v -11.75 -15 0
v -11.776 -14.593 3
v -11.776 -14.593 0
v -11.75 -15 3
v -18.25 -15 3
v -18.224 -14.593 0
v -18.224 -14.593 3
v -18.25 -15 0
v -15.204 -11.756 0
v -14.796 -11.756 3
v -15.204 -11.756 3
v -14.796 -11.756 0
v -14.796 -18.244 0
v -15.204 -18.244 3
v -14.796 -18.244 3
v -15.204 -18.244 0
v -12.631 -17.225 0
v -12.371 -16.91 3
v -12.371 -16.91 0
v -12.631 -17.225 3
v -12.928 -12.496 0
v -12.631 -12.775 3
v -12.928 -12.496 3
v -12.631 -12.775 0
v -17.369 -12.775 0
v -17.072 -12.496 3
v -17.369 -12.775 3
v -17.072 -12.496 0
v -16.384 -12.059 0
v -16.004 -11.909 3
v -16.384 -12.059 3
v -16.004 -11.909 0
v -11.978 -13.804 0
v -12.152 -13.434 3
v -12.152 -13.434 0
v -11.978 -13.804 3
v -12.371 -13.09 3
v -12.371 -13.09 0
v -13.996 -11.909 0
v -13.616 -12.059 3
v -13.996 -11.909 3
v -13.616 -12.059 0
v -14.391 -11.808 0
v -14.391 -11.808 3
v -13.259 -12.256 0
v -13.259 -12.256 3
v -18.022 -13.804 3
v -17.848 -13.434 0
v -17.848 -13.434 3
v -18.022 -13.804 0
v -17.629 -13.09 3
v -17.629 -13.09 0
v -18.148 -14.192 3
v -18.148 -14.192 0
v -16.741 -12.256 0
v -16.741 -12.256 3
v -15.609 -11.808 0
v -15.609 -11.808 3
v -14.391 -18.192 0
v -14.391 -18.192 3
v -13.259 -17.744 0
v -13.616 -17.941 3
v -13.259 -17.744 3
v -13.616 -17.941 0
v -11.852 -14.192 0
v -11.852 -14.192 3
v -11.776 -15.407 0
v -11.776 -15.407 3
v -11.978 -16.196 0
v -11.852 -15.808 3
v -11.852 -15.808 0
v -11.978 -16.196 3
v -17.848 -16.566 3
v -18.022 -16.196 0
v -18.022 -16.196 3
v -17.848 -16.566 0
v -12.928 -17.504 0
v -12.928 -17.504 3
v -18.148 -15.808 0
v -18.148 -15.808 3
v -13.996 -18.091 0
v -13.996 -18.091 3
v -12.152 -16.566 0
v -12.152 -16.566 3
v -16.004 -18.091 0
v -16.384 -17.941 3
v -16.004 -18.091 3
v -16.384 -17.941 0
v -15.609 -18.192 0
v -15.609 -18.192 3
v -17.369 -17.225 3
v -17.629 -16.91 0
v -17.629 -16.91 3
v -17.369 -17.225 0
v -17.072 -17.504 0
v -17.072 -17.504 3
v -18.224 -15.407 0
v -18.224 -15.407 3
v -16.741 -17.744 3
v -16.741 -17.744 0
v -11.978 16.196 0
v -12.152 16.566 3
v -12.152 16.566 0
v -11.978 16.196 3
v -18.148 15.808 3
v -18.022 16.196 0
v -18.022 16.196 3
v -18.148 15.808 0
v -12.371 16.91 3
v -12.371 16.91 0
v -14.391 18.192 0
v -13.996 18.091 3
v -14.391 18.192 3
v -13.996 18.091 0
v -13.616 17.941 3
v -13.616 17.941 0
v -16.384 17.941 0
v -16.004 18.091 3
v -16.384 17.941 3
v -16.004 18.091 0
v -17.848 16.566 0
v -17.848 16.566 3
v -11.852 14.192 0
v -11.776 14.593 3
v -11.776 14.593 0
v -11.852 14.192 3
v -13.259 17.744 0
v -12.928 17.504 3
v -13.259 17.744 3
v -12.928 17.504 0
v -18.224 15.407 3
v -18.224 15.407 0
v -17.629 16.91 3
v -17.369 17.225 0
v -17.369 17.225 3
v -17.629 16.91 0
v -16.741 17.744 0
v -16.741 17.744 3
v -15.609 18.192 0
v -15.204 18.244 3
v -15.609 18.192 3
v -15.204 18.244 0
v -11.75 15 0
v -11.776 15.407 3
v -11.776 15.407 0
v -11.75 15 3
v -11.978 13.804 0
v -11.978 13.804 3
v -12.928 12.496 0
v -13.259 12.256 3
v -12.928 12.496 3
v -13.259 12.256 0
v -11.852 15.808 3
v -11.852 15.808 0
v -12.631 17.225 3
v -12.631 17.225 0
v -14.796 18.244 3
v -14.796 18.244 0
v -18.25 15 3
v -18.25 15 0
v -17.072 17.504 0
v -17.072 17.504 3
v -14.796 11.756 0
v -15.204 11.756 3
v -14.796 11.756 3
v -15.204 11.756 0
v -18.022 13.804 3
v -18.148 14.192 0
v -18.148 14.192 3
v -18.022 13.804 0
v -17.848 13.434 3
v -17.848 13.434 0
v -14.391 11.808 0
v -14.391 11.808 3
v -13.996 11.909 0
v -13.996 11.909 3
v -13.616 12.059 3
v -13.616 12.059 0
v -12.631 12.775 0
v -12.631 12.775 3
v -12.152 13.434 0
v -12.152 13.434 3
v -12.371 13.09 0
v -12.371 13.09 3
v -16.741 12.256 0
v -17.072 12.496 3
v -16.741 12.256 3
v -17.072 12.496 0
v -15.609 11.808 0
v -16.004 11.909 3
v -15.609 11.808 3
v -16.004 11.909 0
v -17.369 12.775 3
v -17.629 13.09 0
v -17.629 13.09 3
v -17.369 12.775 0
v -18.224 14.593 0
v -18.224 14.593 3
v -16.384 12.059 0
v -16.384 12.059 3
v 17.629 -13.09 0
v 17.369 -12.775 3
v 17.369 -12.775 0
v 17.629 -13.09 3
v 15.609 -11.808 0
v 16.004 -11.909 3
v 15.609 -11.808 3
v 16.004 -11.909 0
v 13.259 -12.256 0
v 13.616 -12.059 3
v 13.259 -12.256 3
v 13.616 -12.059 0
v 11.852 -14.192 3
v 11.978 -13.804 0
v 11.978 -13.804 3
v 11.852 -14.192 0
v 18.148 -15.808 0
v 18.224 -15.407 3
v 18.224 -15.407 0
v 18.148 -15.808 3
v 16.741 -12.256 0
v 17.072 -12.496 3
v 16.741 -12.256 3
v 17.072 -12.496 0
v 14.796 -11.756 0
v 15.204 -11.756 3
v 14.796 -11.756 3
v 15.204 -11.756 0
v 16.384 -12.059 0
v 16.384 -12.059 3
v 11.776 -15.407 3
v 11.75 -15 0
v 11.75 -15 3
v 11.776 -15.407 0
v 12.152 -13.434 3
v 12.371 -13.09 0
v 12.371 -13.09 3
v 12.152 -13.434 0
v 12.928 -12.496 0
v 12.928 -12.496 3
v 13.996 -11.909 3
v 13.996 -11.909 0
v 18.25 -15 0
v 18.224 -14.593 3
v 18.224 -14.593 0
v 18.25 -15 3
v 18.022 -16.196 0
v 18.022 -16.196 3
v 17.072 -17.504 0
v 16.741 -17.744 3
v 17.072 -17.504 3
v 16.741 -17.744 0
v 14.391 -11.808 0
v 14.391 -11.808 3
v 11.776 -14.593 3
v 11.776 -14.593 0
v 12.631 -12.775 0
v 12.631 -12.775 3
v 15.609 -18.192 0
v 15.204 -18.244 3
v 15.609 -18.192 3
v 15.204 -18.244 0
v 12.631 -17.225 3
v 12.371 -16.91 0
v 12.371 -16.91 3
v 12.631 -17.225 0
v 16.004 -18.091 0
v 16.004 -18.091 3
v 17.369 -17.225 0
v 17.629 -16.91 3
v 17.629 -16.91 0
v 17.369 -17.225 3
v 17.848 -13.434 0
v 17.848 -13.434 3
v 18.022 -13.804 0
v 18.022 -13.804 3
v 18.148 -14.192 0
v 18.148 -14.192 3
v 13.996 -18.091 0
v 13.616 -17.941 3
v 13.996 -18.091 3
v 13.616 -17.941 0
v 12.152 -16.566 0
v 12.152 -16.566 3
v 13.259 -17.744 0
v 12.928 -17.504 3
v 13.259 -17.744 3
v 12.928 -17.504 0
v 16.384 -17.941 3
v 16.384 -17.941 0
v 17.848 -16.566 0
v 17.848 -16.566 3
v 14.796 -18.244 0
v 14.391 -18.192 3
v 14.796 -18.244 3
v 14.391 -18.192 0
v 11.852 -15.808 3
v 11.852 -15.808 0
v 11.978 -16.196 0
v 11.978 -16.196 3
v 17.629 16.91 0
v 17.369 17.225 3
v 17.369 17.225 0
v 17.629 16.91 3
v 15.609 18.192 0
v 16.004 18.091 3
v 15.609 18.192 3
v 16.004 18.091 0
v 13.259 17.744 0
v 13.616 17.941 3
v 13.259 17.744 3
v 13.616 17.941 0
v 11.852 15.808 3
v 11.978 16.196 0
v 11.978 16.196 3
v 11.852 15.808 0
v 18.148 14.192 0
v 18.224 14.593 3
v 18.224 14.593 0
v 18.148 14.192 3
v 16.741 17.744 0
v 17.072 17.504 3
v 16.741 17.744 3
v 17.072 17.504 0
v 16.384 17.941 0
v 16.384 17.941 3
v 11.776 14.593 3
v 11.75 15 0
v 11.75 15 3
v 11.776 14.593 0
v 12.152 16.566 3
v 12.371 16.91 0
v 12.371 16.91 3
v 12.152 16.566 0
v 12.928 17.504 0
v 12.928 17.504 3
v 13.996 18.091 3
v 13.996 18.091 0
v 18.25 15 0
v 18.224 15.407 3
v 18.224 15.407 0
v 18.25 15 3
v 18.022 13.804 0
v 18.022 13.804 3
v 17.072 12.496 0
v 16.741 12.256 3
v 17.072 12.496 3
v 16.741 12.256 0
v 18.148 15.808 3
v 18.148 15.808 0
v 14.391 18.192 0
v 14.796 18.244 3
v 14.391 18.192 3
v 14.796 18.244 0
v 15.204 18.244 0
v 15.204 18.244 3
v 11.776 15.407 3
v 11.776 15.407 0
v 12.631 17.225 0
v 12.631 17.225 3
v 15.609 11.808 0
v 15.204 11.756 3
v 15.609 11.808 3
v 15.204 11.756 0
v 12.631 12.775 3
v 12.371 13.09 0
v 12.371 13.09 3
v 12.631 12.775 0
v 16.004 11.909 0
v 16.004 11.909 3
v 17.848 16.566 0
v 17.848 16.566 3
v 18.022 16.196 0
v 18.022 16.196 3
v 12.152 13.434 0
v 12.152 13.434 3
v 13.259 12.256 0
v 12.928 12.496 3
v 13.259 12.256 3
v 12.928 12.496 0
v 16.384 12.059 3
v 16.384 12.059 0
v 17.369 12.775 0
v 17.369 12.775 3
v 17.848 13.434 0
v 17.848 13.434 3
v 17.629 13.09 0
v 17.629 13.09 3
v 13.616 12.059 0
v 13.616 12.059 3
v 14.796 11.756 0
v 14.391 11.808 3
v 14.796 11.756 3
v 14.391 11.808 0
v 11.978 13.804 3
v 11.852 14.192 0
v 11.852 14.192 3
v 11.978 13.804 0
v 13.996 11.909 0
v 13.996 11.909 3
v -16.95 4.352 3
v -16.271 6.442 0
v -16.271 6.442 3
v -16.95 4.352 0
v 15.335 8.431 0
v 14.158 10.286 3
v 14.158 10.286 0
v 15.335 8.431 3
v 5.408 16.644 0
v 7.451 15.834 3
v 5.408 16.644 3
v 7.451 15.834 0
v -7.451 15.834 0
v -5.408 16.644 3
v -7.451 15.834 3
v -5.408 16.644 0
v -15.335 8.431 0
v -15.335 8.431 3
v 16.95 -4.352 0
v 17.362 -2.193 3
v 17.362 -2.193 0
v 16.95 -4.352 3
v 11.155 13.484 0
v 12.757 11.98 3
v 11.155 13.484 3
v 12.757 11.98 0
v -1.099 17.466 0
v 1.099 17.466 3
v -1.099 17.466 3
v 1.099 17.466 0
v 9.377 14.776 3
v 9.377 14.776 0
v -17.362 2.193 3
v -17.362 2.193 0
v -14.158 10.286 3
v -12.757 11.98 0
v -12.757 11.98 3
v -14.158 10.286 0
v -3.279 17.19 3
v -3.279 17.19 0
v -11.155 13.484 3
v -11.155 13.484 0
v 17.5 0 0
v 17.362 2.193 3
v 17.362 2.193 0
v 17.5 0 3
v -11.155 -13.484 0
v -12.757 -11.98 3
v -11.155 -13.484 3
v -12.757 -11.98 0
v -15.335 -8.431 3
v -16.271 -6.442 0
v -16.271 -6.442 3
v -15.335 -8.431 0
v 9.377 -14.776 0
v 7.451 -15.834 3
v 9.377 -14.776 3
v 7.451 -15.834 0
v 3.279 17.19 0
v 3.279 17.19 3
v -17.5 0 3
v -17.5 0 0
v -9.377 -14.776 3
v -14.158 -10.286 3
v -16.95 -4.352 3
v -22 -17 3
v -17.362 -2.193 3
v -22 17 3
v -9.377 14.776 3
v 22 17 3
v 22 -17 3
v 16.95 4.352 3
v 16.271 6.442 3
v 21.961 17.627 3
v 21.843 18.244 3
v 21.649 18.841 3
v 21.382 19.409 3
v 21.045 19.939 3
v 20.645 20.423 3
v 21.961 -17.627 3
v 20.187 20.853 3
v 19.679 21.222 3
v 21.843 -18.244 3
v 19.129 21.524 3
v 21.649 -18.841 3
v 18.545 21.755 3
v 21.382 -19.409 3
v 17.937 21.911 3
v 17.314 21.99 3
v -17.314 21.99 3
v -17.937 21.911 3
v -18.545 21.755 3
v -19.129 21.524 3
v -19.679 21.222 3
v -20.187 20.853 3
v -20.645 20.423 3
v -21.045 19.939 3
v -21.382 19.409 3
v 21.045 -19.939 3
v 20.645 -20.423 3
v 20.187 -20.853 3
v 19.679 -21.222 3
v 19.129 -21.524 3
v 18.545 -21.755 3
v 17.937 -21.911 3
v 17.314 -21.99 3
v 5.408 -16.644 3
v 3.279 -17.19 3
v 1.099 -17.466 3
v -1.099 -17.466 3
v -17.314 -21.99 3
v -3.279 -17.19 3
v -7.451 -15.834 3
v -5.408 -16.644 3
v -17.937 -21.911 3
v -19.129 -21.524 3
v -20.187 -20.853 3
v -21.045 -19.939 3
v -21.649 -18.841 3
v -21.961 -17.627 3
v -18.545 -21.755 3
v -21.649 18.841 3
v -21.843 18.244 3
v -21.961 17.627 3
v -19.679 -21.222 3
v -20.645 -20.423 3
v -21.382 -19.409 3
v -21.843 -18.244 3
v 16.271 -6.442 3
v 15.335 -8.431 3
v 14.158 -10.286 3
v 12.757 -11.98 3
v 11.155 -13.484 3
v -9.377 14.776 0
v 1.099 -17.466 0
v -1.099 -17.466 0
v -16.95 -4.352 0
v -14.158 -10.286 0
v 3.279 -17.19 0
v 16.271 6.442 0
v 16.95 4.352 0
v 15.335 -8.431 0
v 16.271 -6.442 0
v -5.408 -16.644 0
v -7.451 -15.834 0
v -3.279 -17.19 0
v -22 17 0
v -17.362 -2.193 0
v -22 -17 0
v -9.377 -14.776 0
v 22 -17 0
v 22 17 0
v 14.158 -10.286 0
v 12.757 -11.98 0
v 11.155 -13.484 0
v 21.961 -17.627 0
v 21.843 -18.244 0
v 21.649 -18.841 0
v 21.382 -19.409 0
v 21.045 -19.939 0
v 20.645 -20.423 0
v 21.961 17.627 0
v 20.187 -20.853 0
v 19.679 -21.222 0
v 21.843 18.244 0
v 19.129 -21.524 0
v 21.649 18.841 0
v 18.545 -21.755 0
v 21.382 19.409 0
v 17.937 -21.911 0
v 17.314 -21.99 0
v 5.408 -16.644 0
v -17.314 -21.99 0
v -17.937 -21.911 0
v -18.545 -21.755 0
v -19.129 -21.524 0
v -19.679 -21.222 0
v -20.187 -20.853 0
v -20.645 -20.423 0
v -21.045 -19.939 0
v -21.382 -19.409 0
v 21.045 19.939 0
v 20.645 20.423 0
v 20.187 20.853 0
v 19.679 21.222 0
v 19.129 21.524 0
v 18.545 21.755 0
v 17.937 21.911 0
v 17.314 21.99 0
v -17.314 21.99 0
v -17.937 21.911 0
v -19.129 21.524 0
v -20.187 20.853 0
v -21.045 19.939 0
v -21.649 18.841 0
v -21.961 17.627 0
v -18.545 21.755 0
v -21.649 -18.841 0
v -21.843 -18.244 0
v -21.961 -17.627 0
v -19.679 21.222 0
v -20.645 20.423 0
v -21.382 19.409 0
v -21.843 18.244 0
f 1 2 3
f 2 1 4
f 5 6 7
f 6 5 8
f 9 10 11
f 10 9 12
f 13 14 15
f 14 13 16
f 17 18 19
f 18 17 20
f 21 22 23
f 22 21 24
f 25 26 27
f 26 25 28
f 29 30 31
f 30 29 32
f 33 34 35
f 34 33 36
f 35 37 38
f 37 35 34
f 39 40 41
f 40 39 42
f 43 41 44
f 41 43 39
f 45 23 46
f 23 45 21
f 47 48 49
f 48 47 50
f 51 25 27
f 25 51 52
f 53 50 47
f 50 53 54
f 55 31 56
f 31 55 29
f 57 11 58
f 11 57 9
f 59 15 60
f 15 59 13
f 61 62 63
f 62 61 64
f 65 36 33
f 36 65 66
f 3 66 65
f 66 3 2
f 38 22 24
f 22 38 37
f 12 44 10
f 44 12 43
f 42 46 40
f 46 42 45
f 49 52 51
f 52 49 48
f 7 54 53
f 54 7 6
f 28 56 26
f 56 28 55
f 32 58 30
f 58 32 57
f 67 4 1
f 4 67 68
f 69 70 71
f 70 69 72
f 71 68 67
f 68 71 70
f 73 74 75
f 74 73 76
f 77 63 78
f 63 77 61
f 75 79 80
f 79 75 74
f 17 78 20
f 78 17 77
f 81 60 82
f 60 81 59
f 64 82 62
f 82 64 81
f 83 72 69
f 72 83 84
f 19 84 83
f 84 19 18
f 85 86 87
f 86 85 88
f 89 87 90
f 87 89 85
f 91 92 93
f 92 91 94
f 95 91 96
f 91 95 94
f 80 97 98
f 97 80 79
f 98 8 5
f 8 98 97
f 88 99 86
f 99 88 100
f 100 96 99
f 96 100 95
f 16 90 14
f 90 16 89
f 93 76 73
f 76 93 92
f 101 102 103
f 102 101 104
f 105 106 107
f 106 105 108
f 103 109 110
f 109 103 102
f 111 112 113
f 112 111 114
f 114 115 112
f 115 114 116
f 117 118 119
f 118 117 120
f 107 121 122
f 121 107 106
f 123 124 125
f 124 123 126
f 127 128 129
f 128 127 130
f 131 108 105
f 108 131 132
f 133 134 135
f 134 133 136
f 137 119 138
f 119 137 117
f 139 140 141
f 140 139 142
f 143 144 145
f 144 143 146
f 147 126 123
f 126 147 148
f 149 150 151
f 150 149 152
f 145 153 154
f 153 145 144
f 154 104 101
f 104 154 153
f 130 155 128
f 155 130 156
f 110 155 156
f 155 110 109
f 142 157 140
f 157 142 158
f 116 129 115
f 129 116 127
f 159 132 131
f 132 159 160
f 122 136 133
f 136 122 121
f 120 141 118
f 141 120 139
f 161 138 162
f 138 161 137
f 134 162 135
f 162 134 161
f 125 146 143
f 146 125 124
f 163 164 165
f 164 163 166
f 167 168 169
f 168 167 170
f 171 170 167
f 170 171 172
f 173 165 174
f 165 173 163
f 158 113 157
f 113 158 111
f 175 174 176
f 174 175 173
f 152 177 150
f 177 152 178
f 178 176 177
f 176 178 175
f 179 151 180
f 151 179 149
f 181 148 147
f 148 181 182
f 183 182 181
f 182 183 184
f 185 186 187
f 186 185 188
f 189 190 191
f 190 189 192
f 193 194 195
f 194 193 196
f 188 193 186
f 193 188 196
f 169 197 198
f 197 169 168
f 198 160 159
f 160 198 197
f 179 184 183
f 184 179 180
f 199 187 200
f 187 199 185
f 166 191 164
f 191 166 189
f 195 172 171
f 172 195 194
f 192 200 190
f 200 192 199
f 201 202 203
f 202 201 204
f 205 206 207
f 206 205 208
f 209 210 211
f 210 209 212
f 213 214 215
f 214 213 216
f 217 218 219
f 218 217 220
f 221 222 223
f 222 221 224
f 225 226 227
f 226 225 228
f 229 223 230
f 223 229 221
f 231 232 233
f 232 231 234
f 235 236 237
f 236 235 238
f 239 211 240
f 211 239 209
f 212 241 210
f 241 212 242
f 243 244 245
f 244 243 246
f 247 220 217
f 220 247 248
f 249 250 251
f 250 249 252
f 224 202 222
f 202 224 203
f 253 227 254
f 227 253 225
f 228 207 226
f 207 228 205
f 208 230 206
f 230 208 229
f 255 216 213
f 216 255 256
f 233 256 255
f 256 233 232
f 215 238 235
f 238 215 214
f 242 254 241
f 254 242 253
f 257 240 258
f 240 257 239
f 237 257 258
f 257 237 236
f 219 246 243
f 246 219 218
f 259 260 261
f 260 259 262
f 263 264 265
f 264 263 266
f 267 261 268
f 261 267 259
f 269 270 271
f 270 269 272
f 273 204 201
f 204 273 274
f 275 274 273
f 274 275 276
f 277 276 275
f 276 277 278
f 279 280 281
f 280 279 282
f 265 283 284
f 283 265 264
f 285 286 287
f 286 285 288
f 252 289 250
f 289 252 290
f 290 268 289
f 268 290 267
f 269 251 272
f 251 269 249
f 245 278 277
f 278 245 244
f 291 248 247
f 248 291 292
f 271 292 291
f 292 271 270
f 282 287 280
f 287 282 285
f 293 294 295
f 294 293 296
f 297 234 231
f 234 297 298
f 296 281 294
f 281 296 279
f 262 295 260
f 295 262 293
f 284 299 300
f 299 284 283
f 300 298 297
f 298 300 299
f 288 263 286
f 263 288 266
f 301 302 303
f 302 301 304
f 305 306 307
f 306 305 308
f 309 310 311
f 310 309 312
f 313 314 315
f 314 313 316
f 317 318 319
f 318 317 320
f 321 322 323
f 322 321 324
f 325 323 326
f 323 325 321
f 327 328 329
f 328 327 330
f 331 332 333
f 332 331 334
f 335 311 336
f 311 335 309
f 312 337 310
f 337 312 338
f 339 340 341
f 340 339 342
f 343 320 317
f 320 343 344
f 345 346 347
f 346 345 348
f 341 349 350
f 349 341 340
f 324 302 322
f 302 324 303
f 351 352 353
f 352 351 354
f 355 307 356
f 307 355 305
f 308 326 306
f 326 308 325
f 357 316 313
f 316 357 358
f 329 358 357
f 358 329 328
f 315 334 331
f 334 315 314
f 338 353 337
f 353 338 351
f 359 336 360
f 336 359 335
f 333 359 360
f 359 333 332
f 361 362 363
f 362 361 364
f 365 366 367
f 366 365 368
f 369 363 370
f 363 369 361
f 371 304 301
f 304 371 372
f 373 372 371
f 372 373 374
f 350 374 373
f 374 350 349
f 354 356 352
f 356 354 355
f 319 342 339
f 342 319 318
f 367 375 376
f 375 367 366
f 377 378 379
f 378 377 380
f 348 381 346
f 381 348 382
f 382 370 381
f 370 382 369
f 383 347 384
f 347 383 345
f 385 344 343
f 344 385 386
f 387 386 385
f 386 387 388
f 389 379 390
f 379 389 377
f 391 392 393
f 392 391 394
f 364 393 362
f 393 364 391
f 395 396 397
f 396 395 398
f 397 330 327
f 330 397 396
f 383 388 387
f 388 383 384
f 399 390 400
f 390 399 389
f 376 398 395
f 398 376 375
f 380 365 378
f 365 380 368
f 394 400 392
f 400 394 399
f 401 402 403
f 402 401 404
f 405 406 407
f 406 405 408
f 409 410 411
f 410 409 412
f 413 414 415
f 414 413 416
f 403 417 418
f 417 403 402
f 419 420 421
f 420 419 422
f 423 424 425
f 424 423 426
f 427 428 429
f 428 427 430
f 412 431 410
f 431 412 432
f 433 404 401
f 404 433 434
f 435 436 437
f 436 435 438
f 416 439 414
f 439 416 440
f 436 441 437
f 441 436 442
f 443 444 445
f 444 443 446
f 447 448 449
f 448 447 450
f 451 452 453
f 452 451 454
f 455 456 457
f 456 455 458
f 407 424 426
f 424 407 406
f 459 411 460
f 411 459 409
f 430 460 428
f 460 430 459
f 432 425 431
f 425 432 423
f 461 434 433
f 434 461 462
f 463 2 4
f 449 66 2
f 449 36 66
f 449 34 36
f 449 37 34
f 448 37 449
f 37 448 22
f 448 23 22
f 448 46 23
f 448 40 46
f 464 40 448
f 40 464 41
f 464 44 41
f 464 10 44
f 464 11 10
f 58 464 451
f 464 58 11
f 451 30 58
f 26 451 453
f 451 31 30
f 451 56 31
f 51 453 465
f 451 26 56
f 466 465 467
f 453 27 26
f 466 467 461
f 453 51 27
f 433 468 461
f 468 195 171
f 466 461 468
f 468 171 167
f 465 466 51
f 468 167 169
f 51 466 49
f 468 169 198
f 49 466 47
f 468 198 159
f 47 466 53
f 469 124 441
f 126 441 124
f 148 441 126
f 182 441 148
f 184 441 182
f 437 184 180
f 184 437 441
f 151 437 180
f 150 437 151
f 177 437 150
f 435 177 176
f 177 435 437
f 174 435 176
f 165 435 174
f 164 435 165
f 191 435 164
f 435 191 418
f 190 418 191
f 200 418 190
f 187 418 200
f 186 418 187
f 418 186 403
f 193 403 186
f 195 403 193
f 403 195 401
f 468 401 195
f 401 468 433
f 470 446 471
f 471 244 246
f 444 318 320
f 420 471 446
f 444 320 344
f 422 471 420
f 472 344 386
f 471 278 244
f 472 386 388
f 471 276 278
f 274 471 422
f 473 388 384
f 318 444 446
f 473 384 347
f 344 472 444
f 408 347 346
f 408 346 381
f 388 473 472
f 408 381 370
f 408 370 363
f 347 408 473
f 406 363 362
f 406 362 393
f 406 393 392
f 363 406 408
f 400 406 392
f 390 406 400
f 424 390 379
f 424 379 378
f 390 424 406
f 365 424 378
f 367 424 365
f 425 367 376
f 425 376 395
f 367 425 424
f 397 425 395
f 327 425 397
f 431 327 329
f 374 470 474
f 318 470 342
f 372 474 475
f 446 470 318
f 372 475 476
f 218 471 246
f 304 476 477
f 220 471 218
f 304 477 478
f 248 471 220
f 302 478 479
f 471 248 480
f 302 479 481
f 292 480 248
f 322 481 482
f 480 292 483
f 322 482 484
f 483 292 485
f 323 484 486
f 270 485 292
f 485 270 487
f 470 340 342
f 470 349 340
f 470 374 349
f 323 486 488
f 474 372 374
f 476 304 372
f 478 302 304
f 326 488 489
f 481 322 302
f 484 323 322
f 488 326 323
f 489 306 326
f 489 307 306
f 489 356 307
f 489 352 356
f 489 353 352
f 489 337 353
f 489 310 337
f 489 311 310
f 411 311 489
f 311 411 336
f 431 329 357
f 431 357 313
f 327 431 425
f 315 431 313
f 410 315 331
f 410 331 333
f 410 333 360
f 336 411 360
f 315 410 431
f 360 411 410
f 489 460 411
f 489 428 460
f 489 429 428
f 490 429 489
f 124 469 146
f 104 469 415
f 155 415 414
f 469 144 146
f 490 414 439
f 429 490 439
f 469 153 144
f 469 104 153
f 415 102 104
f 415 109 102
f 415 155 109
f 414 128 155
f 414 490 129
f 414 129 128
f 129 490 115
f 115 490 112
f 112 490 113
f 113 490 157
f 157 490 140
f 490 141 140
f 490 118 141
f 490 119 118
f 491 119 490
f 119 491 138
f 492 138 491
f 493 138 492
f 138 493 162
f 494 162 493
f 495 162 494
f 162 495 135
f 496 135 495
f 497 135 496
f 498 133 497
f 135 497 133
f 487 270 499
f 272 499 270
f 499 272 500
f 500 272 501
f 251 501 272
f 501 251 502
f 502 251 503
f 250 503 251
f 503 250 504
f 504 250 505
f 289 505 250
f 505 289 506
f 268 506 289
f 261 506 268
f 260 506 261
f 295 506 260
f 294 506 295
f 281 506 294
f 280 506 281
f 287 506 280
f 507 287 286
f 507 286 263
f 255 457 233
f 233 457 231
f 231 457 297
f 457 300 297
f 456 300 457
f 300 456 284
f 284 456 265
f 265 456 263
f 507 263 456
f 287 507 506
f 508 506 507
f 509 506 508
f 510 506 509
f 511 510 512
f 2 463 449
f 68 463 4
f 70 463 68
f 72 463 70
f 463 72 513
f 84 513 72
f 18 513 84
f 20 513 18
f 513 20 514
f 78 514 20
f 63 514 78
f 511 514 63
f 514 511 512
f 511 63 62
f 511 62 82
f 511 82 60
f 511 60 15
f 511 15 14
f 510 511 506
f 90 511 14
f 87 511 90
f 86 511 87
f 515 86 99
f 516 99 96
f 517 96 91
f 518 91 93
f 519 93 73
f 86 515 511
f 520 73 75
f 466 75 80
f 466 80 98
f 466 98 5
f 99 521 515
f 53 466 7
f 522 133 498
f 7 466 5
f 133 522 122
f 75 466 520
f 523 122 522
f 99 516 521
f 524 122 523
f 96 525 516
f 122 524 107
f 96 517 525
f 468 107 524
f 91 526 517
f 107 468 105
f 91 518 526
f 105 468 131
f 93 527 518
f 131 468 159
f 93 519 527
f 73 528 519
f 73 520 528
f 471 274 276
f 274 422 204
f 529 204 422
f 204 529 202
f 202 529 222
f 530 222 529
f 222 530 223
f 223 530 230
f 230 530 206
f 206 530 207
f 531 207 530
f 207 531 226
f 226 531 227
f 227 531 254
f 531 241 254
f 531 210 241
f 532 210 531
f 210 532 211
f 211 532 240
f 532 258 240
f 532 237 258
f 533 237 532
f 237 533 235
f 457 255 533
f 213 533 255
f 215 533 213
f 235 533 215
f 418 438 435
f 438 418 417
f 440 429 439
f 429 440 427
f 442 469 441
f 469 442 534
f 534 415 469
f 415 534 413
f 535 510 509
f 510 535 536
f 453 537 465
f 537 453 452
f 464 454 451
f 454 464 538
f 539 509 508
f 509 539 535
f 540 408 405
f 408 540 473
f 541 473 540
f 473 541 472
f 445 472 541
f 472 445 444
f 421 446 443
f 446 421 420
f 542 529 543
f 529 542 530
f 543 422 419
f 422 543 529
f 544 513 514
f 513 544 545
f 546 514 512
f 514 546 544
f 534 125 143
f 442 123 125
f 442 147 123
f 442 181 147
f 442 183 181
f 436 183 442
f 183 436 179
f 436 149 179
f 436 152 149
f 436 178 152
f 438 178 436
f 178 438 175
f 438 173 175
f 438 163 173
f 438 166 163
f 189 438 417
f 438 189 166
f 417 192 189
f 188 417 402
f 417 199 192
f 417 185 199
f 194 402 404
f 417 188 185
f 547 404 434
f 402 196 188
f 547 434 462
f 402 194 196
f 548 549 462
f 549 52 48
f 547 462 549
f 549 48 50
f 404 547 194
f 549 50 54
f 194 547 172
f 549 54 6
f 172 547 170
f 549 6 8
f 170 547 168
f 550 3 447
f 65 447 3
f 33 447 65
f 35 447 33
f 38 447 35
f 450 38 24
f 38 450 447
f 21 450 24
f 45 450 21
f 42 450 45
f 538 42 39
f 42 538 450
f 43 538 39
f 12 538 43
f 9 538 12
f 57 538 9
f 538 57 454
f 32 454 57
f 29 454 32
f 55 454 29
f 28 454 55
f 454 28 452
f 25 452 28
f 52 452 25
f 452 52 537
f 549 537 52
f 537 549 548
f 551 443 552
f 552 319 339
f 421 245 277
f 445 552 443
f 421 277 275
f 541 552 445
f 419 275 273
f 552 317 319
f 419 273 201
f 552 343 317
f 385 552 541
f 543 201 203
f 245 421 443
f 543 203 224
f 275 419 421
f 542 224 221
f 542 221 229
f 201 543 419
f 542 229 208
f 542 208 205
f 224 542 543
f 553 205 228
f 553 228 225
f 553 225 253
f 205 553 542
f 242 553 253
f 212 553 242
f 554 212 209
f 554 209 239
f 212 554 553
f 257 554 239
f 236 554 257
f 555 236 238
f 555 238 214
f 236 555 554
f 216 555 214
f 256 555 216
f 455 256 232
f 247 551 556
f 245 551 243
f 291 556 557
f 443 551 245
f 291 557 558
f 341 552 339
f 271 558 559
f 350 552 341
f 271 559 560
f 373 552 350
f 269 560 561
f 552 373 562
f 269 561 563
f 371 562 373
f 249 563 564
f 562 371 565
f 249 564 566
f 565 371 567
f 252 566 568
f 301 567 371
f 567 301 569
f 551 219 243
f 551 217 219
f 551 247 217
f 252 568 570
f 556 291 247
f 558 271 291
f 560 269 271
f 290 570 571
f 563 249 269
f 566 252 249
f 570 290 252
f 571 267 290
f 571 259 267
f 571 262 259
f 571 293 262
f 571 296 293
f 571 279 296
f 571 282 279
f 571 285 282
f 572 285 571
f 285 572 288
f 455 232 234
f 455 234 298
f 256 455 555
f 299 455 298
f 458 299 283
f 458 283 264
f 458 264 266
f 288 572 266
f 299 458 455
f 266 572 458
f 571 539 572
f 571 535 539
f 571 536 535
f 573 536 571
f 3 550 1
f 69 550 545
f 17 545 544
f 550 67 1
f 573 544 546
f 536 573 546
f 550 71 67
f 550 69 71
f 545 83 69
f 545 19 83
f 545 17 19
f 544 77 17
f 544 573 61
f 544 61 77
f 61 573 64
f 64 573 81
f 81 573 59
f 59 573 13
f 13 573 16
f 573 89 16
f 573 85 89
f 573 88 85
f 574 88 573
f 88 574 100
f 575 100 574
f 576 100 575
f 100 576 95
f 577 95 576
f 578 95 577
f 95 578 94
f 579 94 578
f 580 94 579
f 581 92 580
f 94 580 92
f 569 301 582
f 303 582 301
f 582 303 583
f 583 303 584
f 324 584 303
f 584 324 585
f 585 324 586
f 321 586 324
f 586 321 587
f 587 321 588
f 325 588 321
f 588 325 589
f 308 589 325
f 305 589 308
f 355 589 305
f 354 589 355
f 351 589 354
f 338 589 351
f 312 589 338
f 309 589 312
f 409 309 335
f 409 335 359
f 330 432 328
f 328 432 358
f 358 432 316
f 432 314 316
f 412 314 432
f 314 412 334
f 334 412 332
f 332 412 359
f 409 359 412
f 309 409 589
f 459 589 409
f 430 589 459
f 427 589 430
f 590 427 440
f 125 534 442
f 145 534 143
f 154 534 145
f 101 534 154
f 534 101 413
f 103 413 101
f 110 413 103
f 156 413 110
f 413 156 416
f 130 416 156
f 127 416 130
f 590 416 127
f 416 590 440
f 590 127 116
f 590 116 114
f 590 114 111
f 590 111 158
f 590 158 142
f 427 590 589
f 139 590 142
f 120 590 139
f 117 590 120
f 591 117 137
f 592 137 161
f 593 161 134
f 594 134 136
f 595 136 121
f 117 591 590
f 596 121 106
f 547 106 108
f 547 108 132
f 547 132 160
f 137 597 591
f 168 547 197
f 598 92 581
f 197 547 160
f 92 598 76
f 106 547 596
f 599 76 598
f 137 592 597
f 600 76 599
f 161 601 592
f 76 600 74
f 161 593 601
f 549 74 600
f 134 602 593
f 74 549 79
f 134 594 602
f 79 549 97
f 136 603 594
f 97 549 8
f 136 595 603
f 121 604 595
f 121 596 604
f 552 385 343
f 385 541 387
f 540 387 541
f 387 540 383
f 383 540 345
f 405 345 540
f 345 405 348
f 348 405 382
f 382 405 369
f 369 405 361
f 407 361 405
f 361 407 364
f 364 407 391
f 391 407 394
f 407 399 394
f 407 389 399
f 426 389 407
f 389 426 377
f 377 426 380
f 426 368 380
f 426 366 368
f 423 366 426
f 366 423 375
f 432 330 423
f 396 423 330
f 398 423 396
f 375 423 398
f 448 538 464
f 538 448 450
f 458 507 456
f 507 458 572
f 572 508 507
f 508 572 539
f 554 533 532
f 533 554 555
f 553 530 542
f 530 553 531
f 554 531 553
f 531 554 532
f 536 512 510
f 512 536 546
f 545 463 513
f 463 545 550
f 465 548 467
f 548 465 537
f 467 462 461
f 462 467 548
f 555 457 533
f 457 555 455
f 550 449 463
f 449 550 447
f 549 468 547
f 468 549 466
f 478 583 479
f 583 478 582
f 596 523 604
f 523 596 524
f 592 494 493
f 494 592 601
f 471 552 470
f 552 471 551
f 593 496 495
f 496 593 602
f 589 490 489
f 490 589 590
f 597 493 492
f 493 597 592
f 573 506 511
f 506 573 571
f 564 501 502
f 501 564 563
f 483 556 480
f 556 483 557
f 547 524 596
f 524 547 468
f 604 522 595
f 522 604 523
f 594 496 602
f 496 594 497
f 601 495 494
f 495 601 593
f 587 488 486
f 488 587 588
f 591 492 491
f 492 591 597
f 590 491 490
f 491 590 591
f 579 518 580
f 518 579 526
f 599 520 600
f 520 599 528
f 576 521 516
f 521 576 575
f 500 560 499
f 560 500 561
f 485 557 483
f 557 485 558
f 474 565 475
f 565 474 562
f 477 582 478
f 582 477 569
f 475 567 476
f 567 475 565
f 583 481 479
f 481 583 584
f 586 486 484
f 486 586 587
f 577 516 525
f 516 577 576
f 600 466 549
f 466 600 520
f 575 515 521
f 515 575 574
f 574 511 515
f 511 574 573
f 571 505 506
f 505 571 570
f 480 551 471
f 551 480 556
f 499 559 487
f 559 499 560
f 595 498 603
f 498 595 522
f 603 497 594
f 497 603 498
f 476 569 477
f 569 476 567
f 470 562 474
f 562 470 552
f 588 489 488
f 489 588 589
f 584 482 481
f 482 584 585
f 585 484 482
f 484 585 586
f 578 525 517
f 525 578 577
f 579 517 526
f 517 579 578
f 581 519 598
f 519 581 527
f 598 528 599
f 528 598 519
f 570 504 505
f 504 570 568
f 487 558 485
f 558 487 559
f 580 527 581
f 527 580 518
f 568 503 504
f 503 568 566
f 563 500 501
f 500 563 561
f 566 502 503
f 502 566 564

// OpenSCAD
$fn = 50;


difference() {
	union() {
		hull() {
			translate(v = [-17.0000000000, 17.0000000000, 0]) {
				cylinder(h = 3, r = 5);
			}
			translate(v = [17.0000000000, 17.0000000000, 0]) {
				cylinder(h = 3, r = 5);
			}
			translate(v = [-17.0000000000, -17.0000000000, 0]) {
				cylinder(h = 3, r = 5);
			}
			translate(v = [17.0000000000, -17.0000000000, 0]) {
				cylinder(h = 3, r = 5);
			}
		}
	}
	union() {
		#translate(v = [-15.0000000000, -15.0000000000, -100.0000000000]) {
			cylinder(h = 200, r = 3.2500000000);
		}
		#translate(v = [-15.0000000000, 15.0000000000, -100.0000000000]) {
			cylinder(h = 200, r = 3.2500000000);
		}
		#translate(v = [15.0000000000, -15.0000000000, -100.0000000000]) {
			cylinder(h = 200, r = 3.2500000000);
		}
		#translate(v = [15.0000000000, 15.0000000000, -100.0000000000]) {
			cylinder(h = 200, r = 3.2500000000);
		}
		#cylinder(h = 3, r = 17.5000000000);
	}
}
